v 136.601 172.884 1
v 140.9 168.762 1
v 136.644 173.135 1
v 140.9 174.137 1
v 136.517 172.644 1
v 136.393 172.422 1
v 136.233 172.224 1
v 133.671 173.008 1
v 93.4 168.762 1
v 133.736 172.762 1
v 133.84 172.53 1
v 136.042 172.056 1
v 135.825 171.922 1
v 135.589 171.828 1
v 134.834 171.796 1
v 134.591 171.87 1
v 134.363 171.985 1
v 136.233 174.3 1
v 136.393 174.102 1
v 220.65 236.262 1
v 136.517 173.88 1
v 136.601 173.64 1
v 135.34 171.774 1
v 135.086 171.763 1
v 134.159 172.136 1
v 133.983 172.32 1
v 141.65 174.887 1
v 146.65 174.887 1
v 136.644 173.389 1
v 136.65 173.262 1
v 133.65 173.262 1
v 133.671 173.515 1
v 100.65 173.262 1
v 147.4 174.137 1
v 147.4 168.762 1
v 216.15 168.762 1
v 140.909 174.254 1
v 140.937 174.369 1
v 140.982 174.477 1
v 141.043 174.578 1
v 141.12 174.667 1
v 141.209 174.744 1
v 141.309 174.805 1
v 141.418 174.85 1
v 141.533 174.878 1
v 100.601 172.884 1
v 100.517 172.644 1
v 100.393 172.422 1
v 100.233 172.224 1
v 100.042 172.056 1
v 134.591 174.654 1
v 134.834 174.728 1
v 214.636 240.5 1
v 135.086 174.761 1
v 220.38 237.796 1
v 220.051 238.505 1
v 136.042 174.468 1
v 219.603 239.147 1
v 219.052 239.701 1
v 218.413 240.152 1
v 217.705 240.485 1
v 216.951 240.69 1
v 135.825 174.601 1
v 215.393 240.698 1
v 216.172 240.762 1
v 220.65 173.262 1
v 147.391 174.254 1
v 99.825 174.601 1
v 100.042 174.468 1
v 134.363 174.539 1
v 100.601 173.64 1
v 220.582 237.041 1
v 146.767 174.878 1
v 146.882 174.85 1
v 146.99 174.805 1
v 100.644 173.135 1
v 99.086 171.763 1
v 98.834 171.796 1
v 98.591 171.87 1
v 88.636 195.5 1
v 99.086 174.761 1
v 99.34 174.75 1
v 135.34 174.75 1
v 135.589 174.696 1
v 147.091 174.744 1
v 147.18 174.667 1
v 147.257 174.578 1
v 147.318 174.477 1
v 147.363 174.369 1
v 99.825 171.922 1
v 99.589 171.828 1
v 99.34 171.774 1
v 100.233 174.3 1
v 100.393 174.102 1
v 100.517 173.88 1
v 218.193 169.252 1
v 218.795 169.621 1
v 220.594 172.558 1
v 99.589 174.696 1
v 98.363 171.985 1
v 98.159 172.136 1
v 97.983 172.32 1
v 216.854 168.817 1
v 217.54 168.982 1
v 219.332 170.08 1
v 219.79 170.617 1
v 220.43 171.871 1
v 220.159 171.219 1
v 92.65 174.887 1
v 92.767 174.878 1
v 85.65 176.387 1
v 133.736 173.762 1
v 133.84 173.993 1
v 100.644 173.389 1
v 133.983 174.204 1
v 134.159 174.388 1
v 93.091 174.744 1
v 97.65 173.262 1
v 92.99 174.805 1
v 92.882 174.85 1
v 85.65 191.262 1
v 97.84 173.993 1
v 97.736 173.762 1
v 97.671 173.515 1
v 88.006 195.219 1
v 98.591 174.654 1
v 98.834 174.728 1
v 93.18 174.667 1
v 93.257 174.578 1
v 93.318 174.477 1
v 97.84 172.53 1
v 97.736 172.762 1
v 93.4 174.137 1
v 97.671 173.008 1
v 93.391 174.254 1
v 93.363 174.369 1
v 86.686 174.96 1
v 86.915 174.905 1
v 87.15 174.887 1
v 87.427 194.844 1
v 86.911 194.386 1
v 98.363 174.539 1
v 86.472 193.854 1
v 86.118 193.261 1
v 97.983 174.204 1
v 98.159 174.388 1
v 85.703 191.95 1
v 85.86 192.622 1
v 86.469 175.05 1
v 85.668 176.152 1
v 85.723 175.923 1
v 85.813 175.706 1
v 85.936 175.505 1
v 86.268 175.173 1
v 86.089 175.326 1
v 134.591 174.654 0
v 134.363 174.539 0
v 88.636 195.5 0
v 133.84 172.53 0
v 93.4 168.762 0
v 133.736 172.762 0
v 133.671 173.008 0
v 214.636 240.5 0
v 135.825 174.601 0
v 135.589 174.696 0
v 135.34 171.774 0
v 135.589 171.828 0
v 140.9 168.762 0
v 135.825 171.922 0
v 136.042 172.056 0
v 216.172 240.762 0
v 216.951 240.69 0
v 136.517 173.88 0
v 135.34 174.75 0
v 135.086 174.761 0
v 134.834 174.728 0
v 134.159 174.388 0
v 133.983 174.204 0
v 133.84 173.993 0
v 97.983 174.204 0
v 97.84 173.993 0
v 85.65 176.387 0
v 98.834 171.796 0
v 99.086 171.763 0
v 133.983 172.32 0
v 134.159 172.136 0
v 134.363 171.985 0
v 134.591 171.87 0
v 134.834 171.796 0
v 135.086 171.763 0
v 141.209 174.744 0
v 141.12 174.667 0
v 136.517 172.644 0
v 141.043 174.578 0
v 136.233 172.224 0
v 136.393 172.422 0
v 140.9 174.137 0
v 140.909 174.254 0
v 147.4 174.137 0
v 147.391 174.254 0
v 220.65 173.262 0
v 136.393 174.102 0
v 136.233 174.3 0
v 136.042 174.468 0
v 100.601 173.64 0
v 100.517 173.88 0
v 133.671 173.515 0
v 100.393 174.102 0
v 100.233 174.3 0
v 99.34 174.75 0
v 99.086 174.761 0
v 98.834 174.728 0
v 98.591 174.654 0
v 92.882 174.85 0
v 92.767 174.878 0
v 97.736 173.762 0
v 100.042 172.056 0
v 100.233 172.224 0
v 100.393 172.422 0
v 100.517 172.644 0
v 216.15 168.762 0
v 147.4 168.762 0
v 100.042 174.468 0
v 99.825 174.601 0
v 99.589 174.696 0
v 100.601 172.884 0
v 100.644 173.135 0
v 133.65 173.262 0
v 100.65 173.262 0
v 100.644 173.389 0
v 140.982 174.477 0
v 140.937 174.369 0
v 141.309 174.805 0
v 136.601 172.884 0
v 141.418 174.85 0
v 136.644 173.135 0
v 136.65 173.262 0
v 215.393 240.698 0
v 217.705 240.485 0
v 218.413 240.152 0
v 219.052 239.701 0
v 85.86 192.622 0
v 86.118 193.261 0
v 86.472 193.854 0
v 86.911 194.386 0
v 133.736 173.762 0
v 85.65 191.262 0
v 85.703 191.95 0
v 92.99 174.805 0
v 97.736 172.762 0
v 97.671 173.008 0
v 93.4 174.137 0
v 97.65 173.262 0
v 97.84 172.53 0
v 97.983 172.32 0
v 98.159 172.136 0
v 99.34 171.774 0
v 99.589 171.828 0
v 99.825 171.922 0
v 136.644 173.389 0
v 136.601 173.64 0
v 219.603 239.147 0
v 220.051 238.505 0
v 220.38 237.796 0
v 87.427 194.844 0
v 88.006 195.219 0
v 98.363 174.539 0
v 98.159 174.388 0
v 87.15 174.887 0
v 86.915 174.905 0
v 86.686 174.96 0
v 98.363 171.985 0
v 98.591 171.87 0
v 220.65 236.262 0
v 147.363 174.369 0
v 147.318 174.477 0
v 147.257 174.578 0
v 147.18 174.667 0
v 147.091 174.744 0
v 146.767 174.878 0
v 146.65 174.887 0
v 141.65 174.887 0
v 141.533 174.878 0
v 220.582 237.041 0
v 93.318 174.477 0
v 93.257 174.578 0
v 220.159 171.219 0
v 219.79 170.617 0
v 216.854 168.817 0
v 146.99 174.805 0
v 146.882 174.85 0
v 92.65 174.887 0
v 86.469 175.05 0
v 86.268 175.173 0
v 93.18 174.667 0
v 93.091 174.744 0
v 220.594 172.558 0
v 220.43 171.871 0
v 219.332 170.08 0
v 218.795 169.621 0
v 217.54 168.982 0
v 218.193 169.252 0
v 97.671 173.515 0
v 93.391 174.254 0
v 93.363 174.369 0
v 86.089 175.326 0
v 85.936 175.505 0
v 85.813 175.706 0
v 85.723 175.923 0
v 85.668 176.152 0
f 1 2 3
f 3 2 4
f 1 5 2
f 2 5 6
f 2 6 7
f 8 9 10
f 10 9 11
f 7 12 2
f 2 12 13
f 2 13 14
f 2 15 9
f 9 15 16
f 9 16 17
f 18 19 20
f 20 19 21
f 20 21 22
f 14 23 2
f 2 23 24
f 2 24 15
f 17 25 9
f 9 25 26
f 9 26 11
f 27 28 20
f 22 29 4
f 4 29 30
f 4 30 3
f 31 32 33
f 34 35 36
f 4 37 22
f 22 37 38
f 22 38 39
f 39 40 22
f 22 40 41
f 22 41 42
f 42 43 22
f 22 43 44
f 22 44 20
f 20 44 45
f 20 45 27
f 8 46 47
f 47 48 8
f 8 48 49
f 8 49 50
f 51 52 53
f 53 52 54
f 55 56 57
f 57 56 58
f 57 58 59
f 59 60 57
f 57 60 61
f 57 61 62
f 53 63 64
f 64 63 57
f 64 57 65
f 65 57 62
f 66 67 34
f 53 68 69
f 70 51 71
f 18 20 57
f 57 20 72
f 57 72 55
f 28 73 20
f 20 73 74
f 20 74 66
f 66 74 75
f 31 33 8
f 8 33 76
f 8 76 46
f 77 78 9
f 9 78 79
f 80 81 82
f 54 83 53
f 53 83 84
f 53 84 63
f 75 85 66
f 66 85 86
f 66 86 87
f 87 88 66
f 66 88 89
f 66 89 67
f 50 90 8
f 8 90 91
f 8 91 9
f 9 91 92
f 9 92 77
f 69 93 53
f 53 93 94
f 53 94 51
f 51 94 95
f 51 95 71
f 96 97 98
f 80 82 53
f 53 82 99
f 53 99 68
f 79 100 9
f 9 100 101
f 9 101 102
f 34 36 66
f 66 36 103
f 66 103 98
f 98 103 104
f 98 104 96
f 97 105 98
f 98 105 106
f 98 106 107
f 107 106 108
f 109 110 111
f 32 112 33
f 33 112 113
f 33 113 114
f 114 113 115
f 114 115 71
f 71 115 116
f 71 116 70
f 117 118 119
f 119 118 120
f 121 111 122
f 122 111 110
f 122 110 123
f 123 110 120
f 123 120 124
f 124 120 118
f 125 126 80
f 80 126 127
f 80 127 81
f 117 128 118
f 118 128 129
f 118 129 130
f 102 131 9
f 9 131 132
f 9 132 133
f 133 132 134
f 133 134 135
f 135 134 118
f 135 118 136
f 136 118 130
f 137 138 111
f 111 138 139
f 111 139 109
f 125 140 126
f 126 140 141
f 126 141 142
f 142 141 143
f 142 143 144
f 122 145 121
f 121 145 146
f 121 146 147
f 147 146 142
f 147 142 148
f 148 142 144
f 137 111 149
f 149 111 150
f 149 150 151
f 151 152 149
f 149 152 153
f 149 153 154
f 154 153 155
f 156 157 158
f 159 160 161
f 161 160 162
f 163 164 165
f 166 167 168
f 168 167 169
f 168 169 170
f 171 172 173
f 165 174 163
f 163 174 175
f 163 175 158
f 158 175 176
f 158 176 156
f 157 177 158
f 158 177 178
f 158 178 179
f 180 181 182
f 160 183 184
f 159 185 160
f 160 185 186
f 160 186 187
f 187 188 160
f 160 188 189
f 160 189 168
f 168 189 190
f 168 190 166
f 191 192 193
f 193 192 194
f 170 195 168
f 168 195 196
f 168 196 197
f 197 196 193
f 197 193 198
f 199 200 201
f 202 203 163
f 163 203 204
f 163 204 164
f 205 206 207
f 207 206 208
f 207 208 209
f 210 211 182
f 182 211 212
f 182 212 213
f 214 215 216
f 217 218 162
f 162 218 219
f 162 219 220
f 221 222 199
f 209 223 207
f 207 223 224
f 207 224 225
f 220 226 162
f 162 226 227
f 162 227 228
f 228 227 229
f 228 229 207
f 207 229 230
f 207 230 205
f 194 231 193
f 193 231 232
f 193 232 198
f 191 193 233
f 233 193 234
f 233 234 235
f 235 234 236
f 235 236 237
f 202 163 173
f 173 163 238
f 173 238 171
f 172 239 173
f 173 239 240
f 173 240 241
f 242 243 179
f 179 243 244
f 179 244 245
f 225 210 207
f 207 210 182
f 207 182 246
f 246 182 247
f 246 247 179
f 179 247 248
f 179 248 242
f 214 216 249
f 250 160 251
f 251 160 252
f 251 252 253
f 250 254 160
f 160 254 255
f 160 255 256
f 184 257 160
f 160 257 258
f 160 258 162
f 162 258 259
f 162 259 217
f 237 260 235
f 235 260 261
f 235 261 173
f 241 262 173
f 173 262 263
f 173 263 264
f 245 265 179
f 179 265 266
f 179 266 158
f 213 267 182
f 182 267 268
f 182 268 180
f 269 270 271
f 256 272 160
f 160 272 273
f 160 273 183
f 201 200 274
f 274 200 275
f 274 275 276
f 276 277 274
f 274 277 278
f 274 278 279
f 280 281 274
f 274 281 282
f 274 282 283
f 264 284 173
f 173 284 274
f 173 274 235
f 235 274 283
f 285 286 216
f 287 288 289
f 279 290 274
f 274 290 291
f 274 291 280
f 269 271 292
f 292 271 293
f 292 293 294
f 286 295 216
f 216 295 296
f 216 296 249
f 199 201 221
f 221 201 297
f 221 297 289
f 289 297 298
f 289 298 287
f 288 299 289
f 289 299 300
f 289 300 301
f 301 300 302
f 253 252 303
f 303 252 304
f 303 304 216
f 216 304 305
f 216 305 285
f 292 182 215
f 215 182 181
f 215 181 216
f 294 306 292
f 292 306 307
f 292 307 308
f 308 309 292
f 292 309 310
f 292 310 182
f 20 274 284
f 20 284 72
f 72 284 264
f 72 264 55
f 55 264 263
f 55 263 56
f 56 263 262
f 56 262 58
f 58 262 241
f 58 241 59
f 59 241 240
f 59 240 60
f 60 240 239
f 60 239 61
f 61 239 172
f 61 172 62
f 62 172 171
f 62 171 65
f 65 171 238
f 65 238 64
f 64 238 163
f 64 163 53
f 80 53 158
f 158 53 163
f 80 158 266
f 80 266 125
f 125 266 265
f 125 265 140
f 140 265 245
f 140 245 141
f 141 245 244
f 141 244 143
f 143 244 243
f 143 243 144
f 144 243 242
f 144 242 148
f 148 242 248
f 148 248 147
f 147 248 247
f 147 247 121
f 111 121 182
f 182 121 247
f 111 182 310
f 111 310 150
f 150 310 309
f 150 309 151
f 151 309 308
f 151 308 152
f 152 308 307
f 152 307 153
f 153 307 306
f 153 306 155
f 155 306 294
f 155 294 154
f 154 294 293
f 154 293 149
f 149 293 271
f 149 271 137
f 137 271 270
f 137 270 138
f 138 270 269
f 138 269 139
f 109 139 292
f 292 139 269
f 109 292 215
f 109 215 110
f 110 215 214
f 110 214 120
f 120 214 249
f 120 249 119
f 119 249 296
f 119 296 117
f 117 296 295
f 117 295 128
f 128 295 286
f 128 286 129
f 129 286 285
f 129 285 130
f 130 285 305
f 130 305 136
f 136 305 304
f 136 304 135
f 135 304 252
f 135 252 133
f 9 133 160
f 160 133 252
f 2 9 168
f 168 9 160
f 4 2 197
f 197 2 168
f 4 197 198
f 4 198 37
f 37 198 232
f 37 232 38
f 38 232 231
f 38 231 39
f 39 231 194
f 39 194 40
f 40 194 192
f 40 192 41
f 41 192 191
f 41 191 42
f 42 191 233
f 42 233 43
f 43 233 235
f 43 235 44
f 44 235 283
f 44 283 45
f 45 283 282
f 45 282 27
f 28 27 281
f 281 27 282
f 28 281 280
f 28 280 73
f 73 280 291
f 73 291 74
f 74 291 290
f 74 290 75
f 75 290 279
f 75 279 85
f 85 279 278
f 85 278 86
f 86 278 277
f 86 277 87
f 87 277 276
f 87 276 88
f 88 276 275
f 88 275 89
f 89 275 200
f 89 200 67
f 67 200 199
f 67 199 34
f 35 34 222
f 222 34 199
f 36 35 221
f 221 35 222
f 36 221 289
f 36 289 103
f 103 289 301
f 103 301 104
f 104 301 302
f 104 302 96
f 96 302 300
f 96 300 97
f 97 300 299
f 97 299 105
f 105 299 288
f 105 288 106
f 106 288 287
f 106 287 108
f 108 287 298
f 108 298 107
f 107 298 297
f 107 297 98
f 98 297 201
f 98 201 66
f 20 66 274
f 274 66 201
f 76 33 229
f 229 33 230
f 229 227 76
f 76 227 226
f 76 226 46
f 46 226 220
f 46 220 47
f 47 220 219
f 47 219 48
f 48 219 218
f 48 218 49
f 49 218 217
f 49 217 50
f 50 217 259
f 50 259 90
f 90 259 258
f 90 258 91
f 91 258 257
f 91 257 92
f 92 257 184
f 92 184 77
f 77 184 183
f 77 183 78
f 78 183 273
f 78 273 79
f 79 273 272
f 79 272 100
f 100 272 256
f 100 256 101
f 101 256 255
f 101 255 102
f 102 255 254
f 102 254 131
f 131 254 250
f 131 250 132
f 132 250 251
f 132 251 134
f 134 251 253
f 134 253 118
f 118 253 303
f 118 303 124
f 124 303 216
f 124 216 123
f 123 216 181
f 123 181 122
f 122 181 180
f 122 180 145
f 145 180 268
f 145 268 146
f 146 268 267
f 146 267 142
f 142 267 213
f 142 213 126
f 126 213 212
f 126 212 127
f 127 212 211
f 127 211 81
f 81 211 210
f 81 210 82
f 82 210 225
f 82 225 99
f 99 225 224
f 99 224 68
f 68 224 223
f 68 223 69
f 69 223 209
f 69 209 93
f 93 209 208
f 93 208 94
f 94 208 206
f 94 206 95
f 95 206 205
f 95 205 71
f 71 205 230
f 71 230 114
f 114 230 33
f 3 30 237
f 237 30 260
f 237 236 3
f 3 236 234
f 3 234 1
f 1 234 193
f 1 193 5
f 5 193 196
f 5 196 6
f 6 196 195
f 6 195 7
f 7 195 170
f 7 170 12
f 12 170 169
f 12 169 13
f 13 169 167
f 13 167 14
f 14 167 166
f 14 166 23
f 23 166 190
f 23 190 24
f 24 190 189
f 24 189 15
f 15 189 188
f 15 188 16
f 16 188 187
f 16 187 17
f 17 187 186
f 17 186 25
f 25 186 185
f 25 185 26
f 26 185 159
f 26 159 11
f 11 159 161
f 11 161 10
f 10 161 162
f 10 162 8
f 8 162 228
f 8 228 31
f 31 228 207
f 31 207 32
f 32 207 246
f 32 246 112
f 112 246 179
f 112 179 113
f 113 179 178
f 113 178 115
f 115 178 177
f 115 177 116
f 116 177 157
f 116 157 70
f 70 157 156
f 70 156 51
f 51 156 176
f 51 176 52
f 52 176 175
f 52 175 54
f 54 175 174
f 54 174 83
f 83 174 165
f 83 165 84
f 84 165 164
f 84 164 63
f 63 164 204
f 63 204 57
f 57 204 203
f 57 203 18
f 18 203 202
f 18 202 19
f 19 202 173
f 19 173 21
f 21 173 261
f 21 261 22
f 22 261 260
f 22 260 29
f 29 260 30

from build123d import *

# Parameters (mm, degrees)
MODEL_R                 = 1.5
SALIENTE_EXTRUIR1_DEPTH = 1


with BuildPart() as part:
    # Model → Saliente-Extruir1 (new body)
    with BuildSketch(Plane.XY):
        with BuildLine():
            Line((147.399890085, 168.7618816), (216.149890085, 168.7618816))
            ThreePointArc((216.149890085, 168.7618816), (219.3318706, 170.079901084), (220.649890085, 173.2618816))
            Line((220.649890085, 173.2618816), (220.649890085, 236.2618816))
            ThreePointArc((220.649890085, 236.2618816), (218.74210805, 239.940251622), (214.636376298, 240.499720202))
            Line((214.636376298, 240.499720202), (88.636376298, 195.499720202))
            ThreePointArc((88.636376298, 195.499720202), (86.471520063, 193.854099565), (85.649890085, 191.2618816))
            Line((85.649890085, 191.2618816), (85.649890085, 176.3868816))
            ThreePointArc((85.649890085, 176.3868816), (86.089229913, 175.326221428), (87.149890085, 174.8868816))
            Line((87.149890085, 174.8868816), (92.649890085, 174.8868816))
            ThreePointArc((92.649890085, 174.8868816), (93.180220171, 174.667211686), (93.399890085, 174.1368816))
            Line((93.399890085, 174.1368816), (93.399890085, 168.7618816))
            Line((93.399890085, 168.7618816), (140.899890085, 168.7618816))
            Line((140.899890085, 168.7618816), (140.899890085, 174.1368816))
            ThreePointArc((140.899890085, 174.1368816), (141.119559999, 174.667211686), (141.649890085, 174.8868816))
            Line((141.649890085, 174.8868816), (146.649890085, 174.8868816))
            ThreePointArc((146.649890085, 174.8868816), (147.180220171, 174.667211686), (147.399890085, 174.1368816))
            Line((147.399890085, 174.1368816), (147.399890085, 168.7618816))
        make_face()
        with Locations((99.149890085, 173.2618816)):
            Circle(MODEL_R, mode=Mode.SUBTRACT)
        with Locations((135.149890085, 173.2618816)):
            Circle(MODEL_R, mode=Mode.SUBTRACT)
    extrude(amount=SALIENTE_EXTRUIR1_DEPTH)


solid = part.part
